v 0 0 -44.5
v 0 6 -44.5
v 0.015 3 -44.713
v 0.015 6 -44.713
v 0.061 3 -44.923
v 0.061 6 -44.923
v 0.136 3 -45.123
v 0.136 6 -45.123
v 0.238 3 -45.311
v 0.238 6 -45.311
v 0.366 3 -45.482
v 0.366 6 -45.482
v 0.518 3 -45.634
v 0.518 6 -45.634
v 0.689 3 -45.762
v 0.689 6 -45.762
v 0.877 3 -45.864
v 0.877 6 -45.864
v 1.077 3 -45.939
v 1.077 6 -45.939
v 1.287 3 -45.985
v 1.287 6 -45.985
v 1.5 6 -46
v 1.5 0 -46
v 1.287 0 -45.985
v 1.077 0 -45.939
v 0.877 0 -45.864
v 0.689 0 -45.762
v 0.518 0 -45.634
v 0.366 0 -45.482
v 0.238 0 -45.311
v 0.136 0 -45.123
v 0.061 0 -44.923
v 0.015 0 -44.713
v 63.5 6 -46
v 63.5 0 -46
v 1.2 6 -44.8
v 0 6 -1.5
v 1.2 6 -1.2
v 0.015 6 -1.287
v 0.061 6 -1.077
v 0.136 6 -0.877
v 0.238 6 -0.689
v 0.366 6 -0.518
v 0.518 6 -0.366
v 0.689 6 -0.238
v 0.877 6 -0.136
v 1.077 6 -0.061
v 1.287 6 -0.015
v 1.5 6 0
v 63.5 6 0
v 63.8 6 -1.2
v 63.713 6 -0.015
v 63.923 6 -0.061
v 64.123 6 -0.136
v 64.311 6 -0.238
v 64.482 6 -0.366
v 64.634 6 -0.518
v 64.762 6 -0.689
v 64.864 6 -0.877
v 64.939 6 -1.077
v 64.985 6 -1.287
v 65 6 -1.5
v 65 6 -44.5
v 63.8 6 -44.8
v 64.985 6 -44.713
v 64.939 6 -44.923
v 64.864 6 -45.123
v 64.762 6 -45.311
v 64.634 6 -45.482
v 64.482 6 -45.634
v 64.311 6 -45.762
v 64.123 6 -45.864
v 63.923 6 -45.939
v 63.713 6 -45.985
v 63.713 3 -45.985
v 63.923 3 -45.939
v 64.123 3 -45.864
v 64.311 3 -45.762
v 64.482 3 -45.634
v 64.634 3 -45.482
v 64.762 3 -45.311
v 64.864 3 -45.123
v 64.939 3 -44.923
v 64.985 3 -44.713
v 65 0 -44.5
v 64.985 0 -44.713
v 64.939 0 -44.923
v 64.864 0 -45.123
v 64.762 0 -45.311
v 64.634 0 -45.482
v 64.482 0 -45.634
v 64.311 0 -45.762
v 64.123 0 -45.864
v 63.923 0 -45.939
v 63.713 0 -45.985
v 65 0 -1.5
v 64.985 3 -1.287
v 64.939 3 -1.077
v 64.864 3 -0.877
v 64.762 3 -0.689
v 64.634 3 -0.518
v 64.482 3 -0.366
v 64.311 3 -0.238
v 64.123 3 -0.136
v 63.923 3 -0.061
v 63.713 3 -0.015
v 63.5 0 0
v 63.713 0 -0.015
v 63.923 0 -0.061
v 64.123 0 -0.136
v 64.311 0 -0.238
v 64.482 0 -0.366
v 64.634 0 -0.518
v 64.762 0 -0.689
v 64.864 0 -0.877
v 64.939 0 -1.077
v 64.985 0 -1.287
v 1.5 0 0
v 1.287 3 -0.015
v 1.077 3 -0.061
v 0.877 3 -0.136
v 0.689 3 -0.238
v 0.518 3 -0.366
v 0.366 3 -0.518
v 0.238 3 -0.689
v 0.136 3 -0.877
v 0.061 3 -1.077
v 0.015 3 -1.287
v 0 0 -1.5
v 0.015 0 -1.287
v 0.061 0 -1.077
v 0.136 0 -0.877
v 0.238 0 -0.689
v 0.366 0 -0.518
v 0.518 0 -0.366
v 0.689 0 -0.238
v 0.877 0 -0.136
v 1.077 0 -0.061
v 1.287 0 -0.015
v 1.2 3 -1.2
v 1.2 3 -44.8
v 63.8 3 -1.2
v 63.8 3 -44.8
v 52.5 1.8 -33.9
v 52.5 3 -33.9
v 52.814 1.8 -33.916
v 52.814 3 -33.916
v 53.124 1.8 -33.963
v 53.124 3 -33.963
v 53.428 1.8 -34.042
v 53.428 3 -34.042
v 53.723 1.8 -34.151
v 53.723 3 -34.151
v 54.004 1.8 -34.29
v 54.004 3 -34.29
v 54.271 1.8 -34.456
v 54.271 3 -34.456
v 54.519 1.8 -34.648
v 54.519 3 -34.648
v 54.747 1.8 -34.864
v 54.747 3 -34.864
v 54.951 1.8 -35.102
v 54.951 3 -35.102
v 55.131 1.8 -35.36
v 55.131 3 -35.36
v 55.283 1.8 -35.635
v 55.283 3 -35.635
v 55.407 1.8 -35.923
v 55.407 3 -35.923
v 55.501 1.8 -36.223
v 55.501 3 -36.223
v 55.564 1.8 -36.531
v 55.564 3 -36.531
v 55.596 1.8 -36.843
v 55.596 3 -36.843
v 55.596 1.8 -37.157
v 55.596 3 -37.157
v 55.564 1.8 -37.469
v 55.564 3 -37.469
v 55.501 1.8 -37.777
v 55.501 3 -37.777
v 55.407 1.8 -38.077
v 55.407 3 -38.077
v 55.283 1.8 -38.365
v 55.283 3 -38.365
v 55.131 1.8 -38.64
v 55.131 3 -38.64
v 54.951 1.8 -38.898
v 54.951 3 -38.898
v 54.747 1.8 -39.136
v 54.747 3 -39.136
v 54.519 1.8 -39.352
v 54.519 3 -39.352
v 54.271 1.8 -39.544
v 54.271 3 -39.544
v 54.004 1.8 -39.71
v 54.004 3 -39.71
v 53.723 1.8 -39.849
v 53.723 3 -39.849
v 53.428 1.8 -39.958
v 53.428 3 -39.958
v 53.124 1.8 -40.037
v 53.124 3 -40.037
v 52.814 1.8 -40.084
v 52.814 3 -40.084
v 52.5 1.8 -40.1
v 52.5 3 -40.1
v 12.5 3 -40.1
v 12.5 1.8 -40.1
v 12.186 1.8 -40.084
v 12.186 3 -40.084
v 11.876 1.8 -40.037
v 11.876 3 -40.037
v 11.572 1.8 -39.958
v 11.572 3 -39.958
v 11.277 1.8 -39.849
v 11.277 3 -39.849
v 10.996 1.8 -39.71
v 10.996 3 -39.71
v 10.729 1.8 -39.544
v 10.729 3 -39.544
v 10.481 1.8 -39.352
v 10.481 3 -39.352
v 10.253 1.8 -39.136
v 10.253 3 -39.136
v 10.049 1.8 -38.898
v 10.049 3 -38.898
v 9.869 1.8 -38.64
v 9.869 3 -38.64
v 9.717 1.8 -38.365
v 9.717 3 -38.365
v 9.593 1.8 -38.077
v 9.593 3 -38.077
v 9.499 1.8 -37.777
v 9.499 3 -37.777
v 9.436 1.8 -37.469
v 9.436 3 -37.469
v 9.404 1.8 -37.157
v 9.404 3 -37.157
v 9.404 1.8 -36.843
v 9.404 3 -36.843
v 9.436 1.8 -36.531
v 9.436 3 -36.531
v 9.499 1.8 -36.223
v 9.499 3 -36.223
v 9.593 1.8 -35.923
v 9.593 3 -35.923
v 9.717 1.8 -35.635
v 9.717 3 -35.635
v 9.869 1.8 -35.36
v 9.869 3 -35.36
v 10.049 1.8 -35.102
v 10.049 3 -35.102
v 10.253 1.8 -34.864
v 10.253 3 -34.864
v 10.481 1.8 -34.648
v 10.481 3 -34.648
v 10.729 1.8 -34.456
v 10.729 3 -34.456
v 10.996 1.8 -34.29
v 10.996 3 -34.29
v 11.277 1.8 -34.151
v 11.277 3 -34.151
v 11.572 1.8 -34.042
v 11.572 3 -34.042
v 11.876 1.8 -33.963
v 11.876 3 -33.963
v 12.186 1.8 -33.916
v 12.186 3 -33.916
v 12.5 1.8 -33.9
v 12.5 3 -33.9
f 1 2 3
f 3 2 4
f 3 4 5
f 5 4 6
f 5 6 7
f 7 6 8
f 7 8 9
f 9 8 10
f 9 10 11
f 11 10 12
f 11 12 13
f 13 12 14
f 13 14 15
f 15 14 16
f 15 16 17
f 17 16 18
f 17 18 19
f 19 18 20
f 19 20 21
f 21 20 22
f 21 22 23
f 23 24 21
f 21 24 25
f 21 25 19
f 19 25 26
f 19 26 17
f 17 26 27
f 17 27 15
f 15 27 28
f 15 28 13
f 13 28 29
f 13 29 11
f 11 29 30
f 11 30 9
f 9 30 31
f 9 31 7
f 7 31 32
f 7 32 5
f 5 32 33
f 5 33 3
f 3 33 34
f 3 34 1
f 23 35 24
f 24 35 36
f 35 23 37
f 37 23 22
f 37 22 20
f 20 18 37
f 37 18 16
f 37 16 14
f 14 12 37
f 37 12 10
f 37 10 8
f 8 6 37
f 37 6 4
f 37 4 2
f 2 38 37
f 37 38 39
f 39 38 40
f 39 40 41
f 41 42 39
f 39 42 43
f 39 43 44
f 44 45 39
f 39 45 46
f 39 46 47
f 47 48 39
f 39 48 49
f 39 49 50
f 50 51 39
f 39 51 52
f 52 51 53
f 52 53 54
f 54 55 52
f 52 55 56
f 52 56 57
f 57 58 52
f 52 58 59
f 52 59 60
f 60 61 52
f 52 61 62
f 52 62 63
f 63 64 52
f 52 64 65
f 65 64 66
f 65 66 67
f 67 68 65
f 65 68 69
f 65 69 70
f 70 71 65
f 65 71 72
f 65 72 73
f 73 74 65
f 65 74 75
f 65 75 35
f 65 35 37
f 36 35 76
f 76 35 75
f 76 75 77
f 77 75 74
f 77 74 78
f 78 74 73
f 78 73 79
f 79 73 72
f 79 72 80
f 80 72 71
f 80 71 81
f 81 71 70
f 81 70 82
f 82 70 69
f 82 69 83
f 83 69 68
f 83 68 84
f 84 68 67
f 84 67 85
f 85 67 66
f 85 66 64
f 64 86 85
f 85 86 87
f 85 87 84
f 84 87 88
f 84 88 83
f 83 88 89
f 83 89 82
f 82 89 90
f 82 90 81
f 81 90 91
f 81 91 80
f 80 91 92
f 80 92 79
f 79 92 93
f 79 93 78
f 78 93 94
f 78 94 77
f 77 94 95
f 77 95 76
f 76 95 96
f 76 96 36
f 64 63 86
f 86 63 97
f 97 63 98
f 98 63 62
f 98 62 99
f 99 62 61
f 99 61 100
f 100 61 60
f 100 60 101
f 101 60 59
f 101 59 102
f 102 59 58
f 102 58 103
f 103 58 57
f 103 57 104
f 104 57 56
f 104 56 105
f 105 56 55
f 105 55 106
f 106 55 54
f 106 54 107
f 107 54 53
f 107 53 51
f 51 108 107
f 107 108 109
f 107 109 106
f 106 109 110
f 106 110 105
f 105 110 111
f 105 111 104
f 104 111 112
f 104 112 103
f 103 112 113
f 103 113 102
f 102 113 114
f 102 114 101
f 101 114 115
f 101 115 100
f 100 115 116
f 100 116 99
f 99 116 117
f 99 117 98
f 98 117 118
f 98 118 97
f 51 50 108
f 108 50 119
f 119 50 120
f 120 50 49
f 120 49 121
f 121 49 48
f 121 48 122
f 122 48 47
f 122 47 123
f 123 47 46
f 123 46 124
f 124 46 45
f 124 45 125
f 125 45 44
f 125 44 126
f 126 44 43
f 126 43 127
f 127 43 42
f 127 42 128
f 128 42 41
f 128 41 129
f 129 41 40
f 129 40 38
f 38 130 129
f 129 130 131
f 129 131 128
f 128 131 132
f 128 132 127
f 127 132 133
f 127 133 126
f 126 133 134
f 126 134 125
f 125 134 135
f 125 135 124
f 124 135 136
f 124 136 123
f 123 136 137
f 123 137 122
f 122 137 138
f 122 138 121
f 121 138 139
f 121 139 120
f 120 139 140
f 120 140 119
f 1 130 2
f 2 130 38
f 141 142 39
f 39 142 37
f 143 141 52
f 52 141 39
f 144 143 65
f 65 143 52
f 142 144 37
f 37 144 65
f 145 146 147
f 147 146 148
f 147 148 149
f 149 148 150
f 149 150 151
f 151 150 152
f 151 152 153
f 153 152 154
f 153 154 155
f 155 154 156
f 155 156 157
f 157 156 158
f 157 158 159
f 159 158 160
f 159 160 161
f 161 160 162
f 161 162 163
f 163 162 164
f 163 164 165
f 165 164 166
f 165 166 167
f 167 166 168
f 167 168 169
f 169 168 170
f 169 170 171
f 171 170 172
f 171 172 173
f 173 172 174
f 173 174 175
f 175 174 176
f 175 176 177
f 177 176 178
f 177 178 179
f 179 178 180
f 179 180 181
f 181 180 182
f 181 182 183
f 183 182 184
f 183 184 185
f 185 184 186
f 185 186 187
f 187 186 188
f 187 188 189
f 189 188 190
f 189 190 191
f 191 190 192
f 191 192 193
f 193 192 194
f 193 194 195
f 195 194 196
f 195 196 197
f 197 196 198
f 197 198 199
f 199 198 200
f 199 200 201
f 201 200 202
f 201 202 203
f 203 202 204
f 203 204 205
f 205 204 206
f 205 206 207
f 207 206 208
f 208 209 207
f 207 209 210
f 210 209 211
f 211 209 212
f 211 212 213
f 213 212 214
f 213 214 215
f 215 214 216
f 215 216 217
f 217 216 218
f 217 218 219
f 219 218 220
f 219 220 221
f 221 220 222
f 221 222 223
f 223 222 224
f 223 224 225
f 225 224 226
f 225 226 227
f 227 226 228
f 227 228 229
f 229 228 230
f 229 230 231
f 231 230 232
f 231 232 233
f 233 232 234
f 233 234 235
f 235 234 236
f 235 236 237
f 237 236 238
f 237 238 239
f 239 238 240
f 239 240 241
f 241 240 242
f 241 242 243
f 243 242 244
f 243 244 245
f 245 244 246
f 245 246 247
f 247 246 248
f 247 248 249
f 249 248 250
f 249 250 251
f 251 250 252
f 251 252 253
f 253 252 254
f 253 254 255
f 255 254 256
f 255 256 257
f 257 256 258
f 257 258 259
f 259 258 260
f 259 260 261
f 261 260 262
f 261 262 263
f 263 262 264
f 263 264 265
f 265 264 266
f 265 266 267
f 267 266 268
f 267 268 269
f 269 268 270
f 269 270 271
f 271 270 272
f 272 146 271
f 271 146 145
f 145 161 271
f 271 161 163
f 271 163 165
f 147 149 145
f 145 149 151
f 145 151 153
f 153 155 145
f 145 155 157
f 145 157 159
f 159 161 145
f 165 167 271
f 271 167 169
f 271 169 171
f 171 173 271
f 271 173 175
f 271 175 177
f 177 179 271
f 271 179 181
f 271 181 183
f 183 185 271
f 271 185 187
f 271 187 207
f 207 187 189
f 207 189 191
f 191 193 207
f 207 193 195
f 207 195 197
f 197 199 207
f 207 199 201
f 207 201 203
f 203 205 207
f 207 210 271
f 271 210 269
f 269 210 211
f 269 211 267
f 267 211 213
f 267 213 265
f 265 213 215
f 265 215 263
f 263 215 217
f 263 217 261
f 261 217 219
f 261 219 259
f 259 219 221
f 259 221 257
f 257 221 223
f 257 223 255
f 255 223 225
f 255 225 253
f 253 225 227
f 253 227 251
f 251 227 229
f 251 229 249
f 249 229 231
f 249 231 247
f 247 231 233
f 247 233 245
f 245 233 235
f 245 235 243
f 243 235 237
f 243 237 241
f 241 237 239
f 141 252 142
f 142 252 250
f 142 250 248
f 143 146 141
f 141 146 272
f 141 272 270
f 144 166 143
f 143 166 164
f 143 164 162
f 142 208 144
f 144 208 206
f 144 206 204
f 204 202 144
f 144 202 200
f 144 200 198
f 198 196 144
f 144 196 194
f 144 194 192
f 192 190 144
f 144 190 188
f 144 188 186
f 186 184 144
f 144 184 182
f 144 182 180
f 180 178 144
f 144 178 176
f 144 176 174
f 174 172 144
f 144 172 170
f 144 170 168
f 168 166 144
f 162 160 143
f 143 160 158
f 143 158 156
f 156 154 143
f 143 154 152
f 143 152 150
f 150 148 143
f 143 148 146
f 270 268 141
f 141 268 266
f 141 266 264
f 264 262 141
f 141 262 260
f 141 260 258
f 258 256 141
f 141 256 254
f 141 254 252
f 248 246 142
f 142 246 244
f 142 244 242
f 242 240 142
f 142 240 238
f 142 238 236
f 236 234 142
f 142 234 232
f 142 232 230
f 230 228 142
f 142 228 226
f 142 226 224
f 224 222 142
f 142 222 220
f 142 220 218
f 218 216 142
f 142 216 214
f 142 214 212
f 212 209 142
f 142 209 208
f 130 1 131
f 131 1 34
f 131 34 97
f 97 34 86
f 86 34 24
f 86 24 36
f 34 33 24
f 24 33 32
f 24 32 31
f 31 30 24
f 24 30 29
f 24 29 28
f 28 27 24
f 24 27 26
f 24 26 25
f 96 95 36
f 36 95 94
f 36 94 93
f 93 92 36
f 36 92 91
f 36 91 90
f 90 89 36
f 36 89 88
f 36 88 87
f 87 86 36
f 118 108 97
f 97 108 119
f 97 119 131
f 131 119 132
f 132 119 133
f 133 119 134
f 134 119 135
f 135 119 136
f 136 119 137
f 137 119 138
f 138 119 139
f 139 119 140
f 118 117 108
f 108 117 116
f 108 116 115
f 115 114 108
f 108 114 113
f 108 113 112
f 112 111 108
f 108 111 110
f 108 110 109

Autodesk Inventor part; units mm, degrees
sketch "Sketch1" plane through (0, 0, 0) normal (0, 1, 0) x (-1, 0, 0)
  point P0 (0, 0)
sketch "Sketch2" plane through (0, 0, 0) normal (0, 1, 0) x (-1, 0, 0)
  line L0 (0, 0) -> (-65, 0)
  line L1 (-65, 0) -> (-65, -46)
  line L2 (-65, -46) -> (0, -46)
  line L3 (0, -46) -> (0, 0)
  dimension "d0" = 65
  dimension "d1" = 46
extrude "Extrusion1" add sketch "Sketch2" along normal blind 3
sketch "Sketch3" plane through (0, 3, 0) normal (0, 1, 0) x (1, 0, 0)
  circle A0 centre (32.5, 37) radius 3.1
  line L0 (65, 46) -> (0, 46) projected
  line L1 (65, 0) -> (65, 46) projected
  line L2 (12.5, 40.1) -> (52.5, 40.1)
  line L3 (0, 46) -> (0, 0) projected
  line L4 (12.5, 33.9) -> (52.5, 33.9)
  arc A1 (12.5, 40.1) -> (12.5, 33.9) centre (12.5, 37) ccw
  arc A2 (52.5, 33.9) -> (52.5, 40.1) centre (52.5, 37) ccw
  point P0 (63.5, 46)
  point P1 (1.5, 46)
  point P2 (32.5, 46)
  point P3 (32.5, 46)
  point P4 (32.5, 46)
  point P5 (32.5, 40.1)
  point P6 (32.5, 40.1)
  point P7 (32.5, 33.9)
  dimension "d5" = 6.2
  dimension "d6" = 0
  dimension "d7" = 9
  dimension "d18" = 40
  dimension "d19" = 0
extrude "Extrusion2" cut sketch "Sketch3" against normal blind 1.2
sketch "Sketch6" plane through (0, 3, 0) normal (0, 1, 0) x (1, 0, 0)
  line L0 (0, 0) -> (65, 0) projected
  line L1 (65, 0) -> (65, 46) projected
  line L2 (0, 0) -> (65, 0)
  line L3 (65, 0) -> (65, 46)
  line L4 (65, 46) -> (0, 46)
  line L5 (0, 46) -> (0, 0)
  line L6 (1.2, 44.8) -> (63.8, 44.8)
  line L7 (63.8, 44.8) -> (63.8, 1.2)
  line L8 (63.8, 1.2) -> (1.2, 1.2)
  line L9 (1.2, 1.2) -> (1.2, 44.8)
  dimension "d13" = 1.2
extrude "Extrusion4" add sketch "Sketch6" along normal blind 3
fillet "Fillet2" radius 1.5 4 edges at (0, 3, 0) (65, 3, 0) (65, 3, -46) (0, 3, -46)
equation "\"d0\" = length + thickness"
equation "\"d1\" = width + thickness"
equation "\"d2\" = thickness"
equation "\"d5\" = mag_diameter"
equation "\"d8\" = mag_thickness"
equation "\"d13\" = 0.4 * thickness"
equation "\"d14\" = thickness"
equation "\"d16\" = 0.5 * thickness"
equation "\"length\" = 62"
equation "\"width\" = 43"
equation "\"thickness\" = 3"
equation "\"mag_thickness\" = 1.2"
equation "\"mag_diameter\" = 6.2"
properties part number "mag_case_v3"
